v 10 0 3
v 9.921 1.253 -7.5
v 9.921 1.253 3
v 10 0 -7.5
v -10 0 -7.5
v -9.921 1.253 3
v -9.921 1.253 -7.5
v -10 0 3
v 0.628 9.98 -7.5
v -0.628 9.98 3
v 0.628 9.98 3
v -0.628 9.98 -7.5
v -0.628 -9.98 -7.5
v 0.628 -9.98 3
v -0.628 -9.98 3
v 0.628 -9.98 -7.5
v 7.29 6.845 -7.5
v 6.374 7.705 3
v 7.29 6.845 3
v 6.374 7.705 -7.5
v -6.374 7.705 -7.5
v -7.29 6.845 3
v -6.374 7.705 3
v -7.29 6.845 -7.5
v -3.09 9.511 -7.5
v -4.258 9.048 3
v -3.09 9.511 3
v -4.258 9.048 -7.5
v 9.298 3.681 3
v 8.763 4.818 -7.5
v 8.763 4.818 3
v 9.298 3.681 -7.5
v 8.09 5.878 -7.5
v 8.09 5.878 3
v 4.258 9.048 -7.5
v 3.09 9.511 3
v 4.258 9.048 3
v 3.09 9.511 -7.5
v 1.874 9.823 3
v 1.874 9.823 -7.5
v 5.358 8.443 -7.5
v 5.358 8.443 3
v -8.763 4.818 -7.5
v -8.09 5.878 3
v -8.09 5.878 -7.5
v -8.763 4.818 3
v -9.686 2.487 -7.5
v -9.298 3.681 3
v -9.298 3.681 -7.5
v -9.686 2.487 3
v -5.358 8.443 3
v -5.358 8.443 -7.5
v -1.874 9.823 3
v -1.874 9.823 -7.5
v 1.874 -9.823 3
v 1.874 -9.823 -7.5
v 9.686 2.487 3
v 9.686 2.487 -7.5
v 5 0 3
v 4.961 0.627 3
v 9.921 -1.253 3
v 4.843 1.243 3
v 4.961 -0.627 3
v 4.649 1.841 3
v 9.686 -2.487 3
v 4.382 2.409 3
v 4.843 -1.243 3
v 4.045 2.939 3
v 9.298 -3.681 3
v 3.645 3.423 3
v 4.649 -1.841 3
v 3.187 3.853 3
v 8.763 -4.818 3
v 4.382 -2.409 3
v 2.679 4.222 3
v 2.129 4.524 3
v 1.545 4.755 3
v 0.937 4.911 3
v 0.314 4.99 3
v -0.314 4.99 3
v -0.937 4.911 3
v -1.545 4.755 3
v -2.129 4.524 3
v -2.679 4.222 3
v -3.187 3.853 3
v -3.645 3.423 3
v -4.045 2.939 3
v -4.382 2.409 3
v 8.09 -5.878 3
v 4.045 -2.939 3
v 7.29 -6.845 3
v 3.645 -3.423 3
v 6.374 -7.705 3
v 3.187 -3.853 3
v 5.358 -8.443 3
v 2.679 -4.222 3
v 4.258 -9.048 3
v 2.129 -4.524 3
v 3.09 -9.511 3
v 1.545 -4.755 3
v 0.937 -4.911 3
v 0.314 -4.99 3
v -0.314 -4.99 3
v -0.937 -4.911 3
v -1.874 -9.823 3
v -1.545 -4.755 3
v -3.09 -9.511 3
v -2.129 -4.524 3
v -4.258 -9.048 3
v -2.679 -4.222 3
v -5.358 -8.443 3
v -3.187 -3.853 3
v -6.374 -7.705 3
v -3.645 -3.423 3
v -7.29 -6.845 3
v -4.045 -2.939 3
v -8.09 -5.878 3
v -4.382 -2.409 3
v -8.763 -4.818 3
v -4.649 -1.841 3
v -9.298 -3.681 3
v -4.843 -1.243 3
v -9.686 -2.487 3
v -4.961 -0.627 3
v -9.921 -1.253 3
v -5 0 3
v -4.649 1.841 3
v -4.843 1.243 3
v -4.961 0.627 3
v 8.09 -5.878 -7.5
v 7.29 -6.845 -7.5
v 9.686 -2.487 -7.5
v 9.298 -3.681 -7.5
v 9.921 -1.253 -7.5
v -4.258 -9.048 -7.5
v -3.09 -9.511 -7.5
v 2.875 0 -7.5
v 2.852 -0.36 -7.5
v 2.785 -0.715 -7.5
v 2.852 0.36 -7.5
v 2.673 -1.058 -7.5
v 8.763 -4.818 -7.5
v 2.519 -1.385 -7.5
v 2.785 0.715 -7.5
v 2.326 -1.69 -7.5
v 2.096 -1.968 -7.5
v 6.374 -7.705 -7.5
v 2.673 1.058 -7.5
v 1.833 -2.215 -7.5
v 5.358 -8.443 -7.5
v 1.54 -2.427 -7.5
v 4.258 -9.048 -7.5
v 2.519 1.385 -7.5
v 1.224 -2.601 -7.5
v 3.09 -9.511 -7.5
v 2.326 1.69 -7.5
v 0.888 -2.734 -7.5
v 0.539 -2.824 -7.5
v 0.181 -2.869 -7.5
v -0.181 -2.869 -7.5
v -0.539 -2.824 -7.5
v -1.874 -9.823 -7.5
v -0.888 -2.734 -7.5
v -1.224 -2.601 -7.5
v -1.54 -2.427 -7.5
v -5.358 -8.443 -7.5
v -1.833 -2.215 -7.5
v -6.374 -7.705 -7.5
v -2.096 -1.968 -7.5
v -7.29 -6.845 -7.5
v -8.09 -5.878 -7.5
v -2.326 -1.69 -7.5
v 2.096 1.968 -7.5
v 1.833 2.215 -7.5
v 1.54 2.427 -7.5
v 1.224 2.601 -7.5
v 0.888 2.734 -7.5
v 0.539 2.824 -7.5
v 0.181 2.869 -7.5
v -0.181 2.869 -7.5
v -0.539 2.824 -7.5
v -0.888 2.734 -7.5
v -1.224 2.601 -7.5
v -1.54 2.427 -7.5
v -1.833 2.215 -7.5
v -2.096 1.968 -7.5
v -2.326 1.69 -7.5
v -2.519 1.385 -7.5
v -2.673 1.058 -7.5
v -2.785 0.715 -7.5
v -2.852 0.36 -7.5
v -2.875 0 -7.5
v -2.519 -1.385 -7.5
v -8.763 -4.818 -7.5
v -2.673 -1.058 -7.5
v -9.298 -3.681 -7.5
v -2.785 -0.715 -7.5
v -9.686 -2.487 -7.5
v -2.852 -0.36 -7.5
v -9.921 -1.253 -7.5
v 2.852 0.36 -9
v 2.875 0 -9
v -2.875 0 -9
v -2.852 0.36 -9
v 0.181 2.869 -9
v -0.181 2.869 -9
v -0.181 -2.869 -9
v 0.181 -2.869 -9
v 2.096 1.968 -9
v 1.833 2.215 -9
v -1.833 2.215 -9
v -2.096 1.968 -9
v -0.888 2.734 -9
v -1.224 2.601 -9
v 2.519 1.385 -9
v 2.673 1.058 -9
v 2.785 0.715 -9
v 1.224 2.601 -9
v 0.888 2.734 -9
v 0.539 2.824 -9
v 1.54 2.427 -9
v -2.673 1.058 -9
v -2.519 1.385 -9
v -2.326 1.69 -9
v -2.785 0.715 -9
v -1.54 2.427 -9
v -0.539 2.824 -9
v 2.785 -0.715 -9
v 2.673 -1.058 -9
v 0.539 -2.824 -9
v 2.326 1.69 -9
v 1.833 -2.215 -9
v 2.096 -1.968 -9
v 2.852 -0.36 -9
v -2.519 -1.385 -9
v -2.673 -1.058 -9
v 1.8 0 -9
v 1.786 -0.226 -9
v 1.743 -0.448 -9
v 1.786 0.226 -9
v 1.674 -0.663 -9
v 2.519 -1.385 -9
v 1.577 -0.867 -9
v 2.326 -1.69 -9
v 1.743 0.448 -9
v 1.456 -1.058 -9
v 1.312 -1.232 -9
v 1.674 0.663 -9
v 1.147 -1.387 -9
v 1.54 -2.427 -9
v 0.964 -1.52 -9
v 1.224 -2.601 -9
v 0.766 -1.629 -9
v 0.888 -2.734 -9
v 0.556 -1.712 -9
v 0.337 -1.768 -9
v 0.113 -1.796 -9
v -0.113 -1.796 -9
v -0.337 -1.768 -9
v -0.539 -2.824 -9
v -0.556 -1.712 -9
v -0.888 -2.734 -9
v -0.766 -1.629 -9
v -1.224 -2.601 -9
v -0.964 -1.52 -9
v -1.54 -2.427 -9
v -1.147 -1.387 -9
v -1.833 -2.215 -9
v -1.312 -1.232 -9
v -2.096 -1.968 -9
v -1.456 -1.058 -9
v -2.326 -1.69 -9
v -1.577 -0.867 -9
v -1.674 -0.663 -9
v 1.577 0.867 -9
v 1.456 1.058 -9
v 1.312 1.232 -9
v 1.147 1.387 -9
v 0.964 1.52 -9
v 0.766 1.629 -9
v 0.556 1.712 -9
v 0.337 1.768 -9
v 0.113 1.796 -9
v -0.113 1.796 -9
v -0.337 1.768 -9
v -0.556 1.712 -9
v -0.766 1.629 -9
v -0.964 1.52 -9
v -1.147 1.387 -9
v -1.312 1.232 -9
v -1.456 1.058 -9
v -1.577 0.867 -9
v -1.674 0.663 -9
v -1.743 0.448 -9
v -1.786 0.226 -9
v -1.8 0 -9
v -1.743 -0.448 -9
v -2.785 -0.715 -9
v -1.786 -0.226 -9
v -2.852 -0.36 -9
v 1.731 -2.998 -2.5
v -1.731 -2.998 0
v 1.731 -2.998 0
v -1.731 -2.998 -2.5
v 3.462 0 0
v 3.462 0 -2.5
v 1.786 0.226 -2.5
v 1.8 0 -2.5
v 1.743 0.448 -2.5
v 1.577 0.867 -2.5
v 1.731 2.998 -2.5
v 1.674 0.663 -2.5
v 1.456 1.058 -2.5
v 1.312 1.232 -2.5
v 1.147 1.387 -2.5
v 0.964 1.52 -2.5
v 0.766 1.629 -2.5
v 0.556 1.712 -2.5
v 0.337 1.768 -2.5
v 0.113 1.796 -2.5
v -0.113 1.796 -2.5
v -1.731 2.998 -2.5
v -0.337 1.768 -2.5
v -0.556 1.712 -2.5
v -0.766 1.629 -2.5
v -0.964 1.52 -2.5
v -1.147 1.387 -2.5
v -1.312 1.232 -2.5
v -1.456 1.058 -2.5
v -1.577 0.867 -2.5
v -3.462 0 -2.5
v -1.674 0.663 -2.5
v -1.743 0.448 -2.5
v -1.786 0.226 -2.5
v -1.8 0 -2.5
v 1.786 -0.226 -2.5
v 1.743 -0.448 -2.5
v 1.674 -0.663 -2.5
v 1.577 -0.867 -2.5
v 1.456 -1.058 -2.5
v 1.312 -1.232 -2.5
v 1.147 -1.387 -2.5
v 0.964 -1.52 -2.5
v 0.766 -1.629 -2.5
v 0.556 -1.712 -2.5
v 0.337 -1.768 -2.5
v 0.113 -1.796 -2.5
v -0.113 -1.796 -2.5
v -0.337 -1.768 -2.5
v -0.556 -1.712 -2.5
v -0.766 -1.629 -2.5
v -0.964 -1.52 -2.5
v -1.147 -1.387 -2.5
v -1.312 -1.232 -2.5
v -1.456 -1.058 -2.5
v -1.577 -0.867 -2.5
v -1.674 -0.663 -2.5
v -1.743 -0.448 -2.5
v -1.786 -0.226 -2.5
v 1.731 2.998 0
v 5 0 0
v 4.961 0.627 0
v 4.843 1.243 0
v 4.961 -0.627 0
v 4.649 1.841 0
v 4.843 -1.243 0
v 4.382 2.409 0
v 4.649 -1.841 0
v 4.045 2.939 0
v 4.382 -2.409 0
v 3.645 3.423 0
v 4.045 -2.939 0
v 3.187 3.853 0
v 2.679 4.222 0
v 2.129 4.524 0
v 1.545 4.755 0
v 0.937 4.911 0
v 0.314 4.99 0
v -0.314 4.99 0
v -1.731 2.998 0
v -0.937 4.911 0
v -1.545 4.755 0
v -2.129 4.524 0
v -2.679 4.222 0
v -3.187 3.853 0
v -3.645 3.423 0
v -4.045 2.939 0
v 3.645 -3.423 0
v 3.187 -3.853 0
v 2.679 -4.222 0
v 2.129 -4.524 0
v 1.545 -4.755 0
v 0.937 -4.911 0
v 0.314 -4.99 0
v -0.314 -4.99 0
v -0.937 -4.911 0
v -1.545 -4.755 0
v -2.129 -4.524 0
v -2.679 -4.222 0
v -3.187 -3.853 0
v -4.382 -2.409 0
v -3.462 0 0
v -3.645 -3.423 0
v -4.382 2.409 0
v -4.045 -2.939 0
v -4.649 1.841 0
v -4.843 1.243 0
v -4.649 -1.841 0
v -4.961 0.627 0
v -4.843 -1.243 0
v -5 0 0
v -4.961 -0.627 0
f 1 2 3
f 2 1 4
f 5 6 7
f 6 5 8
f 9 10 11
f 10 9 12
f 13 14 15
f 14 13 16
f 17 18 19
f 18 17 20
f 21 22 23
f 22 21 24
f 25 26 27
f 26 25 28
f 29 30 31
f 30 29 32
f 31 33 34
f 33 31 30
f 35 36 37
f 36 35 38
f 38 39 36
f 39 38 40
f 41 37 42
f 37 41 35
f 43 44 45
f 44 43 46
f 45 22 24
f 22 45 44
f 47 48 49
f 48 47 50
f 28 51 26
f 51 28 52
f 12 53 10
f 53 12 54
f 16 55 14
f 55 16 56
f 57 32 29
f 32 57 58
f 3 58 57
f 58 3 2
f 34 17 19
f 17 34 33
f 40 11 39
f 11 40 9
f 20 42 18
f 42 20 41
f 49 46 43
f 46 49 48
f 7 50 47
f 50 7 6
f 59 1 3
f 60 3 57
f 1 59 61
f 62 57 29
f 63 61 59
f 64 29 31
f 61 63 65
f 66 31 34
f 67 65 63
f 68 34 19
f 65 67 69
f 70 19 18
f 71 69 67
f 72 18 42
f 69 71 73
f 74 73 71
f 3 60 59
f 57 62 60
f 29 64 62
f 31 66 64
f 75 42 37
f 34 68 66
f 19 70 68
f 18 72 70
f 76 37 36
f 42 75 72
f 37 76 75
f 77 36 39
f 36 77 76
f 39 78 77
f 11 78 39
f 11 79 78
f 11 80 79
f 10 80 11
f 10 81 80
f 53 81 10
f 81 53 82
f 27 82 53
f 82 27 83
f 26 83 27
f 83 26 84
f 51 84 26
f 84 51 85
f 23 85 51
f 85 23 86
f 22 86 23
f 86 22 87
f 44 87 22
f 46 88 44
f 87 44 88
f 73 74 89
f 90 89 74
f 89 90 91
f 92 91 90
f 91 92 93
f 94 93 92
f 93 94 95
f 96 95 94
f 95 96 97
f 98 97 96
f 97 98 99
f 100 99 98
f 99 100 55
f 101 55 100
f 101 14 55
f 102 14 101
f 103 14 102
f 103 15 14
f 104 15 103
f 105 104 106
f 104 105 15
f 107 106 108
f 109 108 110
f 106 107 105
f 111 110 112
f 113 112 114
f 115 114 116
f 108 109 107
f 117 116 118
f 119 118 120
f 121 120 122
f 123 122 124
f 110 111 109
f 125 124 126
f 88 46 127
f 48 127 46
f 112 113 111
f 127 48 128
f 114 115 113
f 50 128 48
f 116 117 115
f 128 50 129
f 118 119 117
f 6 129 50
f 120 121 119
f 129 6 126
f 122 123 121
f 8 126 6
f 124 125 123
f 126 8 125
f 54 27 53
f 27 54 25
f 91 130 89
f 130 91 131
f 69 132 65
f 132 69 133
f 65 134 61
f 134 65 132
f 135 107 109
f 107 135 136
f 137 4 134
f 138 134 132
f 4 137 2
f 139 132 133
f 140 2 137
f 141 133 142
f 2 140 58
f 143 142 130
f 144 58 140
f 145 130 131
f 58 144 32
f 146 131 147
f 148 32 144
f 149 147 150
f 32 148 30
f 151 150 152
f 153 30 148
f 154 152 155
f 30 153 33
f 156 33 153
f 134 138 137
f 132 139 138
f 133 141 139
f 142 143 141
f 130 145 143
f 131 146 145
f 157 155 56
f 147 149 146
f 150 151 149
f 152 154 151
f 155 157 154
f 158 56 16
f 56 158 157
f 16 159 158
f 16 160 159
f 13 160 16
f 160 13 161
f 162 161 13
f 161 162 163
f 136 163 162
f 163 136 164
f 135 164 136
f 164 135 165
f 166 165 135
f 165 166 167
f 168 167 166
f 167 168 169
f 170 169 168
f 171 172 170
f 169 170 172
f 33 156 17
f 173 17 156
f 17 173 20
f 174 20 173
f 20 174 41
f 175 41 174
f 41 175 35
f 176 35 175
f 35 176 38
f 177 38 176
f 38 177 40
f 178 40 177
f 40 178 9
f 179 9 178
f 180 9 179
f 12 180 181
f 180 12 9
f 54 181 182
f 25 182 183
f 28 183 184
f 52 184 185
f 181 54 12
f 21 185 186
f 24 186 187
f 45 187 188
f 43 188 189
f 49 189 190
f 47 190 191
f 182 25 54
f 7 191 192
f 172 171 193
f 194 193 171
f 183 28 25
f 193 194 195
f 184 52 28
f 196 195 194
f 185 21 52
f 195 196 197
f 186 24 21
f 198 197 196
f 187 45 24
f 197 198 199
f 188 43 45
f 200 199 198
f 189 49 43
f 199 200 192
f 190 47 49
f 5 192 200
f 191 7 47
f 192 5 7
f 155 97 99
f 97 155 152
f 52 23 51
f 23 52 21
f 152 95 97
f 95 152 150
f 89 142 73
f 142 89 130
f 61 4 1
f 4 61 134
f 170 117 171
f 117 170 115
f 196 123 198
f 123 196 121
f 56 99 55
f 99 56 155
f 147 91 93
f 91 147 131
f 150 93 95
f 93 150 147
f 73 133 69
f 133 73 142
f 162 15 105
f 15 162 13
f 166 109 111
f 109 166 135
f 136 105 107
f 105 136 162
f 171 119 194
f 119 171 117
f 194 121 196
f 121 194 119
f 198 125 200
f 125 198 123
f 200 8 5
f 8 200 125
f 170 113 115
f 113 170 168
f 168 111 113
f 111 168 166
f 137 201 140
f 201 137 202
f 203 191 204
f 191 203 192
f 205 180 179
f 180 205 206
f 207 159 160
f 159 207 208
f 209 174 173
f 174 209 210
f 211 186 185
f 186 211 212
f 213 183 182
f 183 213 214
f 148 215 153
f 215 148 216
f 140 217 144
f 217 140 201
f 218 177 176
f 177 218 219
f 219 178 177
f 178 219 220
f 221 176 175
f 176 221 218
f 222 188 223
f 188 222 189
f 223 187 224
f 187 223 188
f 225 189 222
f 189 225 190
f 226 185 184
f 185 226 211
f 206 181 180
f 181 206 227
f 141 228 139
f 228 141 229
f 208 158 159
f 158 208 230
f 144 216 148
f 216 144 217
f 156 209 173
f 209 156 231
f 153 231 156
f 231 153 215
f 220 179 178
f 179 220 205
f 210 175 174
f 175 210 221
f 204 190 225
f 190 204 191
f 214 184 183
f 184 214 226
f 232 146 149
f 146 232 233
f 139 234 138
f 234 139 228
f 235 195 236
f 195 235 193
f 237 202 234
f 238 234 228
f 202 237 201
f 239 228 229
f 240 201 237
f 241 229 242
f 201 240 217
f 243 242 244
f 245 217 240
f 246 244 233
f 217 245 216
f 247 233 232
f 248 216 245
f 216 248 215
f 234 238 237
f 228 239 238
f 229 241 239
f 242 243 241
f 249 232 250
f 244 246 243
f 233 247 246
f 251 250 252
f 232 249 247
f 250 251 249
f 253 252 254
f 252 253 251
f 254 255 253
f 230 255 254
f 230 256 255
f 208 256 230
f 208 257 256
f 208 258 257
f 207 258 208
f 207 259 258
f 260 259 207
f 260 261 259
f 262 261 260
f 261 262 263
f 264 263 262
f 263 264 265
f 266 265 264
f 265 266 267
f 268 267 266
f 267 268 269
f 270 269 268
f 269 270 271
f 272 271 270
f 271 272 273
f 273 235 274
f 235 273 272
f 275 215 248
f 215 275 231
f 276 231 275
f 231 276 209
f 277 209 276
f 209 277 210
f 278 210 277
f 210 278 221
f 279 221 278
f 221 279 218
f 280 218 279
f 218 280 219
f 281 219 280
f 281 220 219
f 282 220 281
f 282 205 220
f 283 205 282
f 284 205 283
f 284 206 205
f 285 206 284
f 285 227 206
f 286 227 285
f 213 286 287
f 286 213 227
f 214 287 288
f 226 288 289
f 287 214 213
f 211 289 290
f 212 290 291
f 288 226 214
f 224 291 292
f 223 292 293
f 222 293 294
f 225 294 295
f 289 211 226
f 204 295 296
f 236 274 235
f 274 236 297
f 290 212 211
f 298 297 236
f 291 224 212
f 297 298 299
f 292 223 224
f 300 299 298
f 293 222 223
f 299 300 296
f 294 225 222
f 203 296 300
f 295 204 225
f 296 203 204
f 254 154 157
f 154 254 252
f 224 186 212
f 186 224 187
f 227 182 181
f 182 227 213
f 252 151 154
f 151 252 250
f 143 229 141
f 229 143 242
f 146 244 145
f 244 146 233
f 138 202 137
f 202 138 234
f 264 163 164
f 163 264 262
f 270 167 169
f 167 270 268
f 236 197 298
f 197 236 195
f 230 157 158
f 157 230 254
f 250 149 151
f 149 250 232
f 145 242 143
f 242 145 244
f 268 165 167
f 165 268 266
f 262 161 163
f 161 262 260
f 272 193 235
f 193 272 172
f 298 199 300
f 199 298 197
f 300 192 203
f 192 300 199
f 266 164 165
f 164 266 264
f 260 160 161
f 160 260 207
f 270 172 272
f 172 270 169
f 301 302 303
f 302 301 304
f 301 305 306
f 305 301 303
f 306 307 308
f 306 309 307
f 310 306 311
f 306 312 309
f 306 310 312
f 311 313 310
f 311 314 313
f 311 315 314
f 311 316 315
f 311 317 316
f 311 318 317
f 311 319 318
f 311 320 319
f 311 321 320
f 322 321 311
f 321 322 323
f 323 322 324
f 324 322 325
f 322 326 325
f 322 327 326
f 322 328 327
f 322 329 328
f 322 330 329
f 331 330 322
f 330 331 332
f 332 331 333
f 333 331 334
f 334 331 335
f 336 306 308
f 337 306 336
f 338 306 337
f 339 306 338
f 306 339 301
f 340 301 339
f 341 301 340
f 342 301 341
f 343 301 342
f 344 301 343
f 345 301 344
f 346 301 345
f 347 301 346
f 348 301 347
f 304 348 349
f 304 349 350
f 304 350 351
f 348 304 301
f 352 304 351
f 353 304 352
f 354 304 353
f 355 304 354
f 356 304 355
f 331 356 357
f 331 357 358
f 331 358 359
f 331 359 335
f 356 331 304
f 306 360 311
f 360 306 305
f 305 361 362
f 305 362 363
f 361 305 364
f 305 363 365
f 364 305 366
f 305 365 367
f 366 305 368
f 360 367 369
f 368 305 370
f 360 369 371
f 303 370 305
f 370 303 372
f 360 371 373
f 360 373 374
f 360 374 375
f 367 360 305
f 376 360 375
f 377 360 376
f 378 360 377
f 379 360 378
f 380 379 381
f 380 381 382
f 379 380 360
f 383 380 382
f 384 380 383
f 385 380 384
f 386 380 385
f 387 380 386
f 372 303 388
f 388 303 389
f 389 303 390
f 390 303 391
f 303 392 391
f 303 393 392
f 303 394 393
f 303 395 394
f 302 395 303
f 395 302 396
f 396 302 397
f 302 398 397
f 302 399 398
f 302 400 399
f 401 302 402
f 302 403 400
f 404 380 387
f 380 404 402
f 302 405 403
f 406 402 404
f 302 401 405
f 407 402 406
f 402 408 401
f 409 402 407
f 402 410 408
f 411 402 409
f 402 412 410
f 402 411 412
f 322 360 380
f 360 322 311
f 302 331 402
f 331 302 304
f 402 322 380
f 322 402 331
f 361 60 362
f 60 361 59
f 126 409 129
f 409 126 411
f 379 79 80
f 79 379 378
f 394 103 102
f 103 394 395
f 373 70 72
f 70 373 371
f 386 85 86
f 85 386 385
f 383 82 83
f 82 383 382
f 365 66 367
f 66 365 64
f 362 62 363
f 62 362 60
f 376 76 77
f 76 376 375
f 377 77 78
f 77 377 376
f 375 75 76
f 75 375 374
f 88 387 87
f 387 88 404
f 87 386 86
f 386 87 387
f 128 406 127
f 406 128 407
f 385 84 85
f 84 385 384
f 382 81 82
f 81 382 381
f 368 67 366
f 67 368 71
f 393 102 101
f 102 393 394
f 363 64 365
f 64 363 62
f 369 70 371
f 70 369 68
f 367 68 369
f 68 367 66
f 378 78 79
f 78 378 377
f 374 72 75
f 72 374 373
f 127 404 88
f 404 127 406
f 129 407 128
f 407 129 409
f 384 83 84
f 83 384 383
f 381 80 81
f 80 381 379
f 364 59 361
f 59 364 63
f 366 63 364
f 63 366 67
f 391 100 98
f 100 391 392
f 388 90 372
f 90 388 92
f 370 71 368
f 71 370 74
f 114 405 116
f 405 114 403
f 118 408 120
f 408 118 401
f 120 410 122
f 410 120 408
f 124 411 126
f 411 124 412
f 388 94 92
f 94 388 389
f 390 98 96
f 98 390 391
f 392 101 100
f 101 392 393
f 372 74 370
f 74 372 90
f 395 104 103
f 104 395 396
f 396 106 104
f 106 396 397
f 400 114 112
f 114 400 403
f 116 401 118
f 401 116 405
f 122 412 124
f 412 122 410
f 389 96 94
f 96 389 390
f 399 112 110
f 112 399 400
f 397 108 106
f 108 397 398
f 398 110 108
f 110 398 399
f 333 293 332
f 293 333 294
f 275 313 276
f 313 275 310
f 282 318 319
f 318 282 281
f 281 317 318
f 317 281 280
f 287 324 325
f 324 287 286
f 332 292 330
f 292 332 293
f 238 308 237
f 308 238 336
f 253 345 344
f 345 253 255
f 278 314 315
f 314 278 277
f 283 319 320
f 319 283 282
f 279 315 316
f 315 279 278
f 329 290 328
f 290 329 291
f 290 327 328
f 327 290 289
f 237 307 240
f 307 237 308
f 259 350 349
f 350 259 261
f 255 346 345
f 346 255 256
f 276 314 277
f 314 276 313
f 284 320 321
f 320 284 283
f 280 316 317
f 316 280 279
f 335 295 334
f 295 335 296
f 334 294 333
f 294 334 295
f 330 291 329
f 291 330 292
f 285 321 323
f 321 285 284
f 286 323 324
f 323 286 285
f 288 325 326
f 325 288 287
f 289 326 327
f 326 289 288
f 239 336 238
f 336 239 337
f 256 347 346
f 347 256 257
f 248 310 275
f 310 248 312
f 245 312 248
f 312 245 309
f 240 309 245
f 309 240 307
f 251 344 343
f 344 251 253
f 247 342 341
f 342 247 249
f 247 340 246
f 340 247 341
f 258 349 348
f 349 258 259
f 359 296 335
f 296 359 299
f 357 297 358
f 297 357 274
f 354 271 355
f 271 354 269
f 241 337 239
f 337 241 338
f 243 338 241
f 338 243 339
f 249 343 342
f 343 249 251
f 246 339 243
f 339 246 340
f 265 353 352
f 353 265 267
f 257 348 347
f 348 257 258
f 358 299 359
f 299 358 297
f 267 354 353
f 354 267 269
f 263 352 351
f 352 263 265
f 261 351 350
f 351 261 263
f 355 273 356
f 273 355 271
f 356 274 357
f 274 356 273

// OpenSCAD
$fn = 50;

difference() {
	union() {
		translate(v = [0, 0, -7.5]) {
			cylinder(h = 10.5, r = 10.0);
		}
		#translate(v = [0, 0, -9.0]) {
			cylinder(h = 9, r = 2.875);
		}
	}
	union() {
		translate(v = [0, 0, 0]) {
			rotate(a = [0, 0, 0]) {
				difference() {
					union() {
						translate(v = [0, 0, -2.5]) {
							linear_extrude(height = 2.5) {
								polygon(points = [[3.4619999999999997, 0.0], [1.7310000000000003, 2.9981799479017264], [-1.7309999999999992, 2.9981799479017264], [-3.4619999999999997, 4.2397272186481365e-16], [-1.7310000000000014, -2.998179947901726], [1.7309999999999977, -2.9981799479017277]]);
							}
						}
					}
					union();
				}
			}
		}
		#cylinder(h = 3, r = 5.0);
		#translate(v = [0, 0, -100.0]) {
			cylinder(h = 200, r = 1.8);
		}
	}
}
